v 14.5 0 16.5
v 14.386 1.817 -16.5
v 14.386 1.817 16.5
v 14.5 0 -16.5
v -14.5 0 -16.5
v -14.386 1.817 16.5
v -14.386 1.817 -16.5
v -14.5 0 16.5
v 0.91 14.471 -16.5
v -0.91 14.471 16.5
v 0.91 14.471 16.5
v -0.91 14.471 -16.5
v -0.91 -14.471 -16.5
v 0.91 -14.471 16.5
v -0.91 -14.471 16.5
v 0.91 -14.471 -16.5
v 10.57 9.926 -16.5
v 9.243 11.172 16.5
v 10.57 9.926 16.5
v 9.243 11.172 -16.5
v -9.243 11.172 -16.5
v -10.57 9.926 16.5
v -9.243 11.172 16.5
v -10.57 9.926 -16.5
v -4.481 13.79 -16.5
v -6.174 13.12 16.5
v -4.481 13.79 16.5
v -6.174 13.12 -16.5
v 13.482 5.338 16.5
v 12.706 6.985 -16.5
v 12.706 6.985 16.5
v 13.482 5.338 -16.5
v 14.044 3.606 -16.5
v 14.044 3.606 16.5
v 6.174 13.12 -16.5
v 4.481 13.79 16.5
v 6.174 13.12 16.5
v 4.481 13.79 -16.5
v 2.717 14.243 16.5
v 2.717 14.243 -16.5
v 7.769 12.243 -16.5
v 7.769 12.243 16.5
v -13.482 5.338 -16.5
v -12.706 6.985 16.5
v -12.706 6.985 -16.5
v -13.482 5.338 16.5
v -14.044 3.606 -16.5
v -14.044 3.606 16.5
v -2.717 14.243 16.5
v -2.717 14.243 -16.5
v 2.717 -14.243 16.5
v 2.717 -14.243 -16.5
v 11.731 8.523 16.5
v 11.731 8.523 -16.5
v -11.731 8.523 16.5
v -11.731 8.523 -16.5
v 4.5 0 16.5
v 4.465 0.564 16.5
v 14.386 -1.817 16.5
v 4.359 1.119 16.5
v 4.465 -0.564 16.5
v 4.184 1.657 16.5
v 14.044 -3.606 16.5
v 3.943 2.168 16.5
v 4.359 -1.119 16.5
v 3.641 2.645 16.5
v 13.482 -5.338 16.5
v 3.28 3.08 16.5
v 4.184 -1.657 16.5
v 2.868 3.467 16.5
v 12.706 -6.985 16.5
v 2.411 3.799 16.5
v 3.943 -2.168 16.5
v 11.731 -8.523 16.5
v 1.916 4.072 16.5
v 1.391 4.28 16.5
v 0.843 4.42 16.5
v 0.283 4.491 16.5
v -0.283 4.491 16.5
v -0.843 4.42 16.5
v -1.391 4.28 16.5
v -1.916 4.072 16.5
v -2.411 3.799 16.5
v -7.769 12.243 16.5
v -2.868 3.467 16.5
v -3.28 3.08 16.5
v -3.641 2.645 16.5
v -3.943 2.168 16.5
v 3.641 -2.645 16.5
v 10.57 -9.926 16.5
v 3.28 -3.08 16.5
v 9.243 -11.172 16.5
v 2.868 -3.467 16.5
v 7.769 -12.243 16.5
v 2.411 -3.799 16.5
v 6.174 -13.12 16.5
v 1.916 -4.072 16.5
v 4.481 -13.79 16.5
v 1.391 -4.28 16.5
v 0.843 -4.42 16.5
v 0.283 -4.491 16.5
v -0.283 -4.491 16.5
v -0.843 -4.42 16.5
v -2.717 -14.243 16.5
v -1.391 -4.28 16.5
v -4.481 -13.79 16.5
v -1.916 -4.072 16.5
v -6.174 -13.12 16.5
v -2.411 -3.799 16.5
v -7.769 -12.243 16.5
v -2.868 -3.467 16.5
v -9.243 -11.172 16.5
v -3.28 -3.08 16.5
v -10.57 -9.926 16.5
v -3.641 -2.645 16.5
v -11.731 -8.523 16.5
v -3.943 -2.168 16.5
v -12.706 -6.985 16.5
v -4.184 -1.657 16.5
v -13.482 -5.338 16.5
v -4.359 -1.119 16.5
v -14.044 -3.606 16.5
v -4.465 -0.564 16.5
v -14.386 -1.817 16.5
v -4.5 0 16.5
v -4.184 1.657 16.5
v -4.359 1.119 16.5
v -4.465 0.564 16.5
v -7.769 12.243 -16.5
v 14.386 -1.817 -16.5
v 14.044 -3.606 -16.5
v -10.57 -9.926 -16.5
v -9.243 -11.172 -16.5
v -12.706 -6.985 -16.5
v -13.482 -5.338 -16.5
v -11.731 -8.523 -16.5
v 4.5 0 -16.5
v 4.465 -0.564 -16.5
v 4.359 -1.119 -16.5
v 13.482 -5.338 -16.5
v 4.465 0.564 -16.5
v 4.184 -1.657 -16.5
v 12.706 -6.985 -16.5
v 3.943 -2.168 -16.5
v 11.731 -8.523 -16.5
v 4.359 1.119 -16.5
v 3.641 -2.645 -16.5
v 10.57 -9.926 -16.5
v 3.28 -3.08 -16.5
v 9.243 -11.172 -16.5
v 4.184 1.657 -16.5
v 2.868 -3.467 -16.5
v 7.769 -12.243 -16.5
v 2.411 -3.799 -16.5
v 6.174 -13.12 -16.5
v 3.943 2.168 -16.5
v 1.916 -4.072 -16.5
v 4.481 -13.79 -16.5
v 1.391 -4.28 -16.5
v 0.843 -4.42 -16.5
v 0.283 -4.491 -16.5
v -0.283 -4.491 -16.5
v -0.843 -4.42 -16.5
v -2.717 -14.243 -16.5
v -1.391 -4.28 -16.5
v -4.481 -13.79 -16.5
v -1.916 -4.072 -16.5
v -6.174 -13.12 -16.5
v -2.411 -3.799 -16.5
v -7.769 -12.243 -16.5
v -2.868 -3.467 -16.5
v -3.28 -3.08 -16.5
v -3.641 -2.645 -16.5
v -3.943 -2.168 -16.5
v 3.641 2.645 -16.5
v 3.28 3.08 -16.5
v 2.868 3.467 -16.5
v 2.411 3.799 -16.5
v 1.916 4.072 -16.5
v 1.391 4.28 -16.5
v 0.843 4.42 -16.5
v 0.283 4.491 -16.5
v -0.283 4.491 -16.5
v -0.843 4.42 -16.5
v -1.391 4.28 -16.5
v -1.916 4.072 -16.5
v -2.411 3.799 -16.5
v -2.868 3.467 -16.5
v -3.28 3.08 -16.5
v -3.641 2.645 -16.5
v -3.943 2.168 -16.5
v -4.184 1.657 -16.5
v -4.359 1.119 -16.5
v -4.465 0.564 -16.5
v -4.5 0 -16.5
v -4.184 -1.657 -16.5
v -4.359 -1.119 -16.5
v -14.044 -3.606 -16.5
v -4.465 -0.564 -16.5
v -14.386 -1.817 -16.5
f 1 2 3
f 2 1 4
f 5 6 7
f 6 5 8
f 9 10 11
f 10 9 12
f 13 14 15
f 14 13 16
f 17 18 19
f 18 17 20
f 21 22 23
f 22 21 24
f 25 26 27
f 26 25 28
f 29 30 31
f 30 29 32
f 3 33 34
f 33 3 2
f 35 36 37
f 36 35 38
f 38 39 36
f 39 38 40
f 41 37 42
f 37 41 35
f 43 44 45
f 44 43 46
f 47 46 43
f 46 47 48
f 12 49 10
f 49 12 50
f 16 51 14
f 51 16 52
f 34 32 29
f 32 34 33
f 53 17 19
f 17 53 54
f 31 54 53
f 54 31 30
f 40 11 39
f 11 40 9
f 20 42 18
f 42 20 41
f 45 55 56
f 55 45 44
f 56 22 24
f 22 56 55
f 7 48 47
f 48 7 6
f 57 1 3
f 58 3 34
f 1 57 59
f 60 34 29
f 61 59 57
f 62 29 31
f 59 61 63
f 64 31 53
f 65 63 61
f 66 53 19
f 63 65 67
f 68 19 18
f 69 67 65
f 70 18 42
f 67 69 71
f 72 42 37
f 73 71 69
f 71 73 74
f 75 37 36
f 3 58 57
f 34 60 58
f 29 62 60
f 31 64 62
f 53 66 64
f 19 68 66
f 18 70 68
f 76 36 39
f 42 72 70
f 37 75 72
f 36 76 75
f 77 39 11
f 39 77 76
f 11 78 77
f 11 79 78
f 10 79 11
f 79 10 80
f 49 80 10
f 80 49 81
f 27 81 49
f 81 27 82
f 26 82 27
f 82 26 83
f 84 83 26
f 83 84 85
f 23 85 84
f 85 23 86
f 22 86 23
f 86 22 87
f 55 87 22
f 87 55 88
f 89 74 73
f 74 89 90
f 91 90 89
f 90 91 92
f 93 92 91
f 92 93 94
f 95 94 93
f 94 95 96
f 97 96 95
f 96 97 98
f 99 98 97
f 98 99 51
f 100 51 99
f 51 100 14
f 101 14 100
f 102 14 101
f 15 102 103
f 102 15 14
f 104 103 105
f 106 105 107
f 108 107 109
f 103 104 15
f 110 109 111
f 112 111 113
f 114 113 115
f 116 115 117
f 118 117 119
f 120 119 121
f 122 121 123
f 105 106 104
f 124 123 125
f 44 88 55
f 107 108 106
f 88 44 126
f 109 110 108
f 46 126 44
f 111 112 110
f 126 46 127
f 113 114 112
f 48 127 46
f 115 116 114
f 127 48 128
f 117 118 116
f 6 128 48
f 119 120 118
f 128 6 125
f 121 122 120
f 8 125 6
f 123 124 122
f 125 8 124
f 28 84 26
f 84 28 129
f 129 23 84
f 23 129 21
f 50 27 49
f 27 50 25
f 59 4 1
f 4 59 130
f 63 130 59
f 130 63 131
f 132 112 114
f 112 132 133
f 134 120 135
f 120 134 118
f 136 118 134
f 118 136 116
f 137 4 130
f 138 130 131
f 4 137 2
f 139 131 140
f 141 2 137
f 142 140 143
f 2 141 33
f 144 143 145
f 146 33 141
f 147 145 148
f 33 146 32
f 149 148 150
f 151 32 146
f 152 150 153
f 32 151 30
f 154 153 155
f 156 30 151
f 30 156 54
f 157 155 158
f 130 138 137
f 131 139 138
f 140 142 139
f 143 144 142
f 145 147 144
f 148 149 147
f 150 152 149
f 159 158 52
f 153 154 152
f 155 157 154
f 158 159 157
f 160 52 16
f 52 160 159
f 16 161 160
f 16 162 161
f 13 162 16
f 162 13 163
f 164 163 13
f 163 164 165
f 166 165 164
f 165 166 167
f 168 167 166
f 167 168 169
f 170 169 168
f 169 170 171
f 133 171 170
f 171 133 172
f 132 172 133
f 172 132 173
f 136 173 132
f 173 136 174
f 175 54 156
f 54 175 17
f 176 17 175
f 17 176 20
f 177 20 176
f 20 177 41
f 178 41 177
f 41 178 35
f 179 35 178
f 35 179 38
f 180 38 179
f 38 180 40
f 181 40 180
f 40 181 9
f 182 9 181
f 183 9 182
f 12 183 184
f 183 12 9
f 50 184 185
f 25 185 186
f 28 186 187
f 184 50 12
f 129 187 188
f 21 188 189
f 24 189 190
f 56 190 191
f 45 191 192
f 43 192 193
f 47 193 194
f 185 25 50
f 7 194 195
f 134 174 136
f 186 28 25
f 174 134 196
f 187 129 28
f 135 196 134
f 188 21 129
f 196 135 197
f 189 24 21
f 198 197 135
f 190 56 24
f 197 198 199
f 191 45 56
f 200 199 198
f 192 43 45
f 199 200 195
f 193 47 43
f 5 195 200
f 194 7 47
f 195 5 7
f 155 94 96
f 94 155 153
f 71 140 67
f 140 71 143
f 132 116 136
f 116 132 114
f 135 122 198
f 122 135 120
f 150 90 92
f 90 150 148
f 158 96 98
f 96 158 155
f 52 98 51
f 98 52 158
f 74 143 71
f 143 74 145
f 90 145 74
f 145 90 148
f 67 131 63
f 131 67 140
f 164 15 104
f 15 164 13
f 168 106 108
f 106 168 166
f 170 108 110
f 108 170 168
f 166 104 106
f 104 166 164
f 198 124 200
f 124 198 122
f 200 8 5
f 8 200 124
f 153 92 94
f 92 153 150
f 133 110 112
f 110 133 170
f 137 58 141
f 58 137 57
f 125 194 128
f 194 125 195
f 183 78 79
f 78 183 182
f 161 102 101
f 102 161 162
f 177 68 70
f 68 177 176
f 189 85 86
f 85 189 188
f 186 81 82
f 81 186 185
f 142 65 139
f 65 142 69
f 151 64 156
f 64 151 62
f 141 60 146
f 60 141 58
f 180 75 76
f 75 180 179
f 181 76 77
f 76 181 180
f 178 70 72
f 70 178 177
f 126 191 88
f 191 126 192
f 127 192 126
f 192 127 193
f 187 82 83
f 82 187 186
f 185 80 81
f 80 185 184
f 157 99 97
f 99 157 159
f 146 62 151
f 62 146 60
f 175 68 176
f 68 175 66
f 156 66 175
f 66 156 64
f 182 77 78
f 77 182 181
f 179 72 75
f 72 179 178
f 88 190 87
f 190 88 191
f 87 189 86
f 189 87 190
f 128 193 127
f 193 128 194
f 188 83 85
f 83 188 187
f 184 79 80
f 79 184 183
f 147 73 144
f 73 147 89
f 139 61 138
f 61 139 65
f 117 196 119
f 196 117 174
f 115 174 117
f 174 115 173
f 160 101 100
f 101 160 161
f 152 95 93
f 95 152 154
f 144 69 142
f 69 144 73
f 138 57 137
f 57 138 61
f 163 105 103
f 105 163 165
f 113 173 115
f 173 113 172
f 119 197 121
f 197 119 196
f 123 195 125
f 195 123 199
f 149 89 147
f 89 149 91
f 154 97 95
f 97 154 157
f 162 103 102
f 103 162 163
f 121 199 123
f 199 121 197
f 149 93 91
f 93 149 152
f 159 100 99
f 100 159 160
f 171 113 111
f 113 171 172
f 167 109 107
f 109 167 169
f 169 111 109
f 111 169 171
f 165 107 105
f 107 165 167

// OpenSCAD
$fn = 50;


difference() {
	union() {
		translate(v = [0, 0, -16.5000000000]) {
			cylinder(h = 33, r = 14.5000000000);
		}
	}
	union() {
		translate(v = [0, 0, -100.0000000000]) {
			cylinder(h = 200, r = 4.5000000000);
		}
	}
}
